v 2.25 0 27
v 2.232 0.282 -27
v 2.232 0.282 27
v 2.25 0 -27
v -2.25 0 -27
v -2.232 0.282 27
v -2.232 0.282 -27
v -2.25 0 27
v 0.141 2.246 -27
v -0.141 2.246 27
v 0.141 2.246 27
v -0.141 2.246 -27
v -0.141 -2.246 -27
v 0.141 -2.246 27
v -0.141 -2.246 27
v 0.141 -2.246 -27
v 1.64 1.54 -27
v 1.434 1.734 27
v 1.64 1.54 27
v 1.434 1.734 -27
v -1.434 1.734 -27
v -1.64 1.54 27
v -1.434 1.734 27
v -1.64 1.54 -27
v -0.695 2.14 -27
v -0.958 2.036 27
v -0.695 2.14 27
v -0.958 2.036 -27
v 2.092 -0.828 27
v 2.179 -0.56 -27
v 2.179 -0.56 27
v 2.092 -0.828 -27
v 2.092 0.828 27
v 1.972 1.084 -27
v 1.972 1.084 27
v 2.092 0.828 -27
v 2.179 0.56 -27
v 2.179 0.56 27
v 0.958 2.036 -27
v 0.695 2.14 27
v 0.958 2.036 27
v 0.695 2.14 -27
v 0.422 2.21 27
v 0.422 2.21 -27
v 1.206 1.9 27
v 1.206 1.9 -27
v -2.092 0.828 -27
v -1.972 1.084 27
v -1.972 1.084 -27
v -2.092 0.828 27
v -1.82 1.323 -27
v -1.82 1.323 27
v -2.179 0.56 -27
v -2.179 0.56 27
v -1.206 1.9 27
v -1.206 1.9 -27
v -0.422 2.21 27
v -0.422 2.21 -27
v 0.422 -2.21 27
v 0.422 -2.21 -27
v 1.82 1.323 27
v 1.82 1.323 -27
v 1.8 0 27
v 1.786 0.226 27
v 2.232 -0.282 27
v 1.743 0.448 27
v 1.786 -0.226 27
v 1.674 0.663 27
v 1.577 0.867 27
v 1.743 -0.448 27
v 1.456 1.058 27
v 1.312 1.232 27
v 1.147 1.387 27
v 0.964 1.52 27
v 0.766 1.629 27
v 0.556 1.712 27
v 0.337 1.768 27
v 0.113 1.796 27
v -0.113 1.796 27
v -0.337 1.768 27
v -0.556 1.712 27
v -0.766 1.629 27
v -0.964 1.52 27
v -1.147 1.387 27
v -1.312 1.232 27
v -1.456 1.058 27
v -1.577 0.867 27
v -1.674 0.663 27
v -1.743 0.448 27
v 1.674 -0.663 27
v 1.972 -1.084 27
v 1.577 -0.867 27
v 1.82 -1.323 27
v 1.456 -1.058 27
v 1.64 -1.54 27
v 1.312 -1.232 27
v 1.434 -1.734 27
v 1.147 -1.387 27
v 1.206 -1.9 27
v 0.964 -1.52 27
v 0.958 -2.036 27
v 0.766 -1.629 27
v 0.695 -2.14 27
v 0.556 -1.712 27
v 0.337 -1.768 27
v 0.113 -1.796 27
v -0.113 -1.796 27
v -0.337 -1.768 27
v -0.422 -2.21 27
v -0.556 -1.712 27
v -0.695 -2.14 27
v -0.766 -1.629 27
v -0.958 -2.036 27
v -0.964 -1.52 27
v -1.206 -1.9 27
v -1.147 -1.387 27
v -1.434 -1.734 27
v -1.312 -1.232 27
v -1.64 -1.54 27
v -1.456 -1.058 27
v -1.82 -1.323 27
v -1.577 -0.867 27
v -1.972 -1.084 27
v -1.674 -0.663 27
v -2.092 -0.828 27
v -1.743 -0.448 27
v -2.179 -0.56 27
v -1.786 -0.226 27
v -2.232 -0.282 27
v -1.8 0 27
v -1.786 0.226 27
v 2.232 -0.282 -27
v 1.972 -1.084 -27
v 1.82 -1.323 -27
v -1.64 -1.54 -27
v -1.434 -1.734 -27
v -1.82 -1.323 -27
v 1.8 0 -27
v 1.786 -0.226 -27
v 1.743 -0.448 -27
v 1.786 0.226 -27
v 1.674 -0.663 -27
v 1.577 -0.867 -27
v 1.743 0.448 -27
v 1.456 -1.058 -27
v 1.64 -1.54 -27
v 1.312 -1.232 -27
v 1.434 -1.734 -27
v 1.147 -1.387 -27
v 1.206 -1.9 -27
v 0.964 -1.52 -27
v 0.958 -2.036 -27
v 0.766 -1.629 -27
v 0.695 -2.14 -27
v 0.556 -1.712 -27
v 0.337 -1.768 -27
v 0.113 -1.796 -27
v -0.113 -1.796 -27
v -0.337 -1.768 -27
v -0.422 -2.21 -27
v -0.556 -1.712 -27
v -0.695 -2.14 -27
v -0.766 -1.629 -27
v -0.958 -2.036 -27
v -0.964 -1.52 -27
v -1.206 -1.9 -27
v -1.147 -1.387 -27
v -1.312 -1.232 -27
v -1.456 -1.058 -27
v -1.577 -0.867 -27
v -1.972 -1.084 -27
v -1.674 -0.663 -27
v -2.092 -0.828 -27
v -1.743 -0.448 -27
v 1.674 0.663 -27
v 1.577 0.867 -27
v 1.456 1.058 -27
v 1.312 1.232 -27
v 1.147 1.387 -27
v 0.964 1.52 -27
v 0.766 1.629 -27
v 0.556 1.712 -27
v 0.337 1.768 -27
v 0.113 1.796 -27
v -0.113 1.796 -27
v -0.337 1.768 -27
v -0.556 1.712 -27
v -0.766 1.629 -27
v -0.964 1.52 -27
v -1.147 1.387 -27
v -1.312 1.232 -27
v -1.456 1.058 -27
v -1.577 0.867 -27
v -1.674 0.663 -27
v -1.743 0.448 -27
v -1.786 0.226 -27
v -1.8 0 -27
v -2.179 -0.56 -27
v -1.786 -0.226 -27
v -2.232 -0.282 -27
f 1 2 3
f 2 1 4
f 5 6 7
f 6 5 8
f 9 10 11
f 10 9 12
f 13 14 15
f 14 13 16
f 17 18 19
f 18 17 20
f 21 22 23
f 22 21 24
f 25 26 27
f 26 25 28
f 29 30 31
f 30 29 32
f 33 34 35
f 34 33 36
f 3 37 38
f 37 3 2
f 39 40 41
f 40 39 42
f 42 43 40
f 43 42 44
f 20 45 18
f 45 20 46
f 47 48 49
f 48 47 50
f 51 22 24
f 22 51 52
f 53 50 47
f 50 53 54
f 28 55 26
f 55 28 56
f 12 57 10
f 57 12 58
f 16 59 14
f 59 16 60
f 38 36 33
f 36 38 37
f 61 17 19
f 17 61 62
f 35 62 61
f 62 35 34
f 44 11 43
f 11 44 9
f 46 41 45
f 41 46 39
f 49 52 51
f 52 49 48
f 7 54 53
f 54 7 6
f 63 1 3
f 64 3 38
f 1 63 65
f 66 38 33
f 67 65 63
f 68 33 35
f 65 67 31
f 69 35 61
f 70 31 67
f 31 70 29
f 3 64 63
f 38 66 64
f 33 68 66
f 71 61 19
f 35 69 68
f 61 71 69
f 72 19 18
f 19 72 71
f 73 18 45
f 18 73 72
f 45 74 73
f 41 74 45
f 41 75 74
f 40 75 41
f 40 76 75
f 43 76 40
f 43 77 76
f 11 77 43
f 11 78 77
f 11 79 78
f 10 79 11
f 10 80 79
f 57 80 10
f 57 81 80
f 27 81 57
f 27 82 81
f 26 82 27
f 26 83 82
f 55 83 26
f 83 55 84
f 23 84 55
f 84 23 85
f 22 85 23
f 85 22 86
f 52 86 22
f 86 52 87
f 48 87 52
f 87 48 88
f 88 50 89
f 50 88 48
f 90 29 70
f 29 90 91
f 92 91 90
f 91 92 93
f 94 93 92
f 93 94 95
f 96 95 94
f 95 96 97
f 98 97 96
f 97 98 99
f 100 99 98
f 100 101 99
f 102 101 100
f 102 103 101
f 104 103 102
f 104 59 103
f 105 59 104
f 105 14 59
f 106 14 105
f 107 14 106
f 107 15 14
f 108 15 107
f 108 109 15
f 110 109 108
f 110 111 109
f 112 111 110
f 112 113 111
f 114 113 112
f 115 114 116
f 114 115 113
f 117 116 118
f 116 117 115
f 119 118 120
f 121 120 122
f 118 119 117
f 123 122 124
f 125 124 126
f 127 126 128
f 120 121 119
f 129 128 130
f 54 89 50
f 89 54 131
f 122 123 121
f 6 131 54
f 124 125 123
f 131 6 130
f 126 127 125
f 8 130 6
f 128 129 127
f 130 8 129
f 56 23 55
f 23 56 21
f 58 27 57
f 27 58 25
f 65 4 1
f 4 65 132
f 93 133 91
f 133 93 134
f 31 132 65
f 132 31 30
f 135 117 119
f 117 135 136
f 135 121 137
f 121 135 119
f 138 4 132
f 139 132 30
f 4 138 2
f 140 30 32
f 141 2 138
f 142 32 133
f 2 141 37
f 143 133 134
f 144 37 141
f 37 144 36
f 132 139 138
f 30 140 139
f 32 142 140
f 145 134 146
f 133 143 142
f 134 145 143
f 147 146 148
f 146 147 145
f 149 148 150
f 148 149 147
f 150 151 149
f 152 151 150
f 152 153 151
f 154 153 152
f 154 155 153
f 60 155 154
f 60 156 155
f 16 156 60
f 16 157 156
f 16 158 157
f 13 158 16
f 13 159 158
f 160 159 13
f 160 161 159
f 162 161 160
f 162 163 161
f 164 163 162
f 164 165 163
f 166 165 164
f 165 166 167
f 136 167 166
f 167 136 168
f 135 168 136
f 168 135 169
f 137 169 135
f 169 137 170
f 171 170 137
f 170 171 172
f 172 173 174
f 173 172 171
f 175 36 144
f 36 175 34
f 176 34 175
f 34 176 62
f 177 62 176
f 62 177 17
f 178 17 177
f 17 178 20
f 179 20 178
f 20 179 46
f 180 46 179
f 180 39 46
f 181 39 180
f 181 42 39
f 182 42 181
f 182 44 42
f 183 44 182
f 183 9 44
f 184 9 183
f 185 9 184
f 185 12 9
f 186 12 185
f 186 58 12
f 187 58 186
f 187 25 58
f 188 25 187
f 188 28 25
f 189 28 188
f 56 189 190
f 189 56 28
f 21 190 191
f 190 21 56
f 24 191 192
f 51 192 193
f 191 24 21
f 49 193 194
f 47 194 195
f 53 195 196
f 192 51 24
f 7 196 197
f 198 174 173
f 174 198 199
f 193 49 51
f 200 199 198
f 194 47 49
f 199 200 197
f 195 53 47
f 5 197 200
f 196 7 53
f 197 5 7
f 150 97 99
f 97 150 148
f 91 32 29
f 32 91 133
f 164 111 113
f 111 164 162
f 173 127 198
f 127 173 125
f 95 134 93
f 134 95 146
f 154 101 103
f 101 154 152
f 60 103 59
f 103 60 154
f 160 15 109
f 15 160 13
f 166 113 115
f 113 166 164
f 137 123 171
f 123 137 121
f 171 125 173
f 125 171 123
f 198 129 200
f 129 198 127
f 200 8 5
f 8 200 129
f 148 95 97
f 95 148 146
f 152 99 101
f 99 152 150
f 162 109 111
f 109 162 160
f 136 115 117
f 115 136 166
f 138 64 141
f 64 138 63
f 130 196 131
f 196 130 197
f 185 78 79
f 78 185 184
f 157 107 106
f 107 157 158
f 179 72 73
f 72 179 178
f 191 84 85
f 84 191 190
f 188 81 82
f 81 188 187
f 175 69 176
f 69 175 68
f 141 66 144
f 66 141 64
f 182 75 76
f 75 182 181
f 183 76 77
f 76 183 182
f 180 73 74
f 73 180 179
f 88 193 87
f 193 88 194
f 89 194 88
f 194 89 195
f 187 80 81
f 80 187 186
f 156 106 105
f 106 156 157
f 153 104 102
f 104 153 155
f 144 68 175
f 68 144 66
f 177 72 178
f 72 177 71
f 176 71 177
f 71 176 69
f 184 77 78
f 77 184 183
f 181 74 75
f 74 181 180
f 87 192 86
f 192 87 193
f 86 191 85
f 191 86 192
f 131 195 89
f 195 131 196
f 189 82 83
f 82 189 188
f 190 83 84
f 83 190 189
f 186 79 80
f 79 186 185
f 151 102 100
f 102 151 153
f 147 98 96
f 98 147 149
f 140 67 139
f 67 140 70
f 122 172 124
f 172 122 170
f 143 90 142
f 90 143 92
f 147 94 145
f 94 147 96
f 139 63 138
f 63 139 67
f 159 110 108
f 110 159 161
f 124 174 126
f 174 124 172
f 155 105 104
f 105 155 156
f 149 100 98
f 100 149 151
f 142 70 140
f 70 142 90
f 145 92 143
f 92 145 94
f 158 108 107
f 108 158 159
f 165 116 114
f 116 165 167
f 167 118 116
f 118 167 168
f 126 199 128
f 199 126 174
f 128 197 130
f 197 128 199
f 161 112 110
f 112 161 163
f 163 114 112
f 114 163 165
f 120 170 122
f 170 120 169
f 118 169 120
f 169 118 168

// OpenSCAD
$fn = 50;


difference() {
	union() {
		translate(v = [0, 0, -27.0000000000]) {
			cylinder(h = 54, r = 2.2500000000);
		}
	}
	union() {
		translate(v = [0, 0, -100.0000000000]) {
			cylinder(h = 200, r = 1.8000000000);
		}
	}
}
